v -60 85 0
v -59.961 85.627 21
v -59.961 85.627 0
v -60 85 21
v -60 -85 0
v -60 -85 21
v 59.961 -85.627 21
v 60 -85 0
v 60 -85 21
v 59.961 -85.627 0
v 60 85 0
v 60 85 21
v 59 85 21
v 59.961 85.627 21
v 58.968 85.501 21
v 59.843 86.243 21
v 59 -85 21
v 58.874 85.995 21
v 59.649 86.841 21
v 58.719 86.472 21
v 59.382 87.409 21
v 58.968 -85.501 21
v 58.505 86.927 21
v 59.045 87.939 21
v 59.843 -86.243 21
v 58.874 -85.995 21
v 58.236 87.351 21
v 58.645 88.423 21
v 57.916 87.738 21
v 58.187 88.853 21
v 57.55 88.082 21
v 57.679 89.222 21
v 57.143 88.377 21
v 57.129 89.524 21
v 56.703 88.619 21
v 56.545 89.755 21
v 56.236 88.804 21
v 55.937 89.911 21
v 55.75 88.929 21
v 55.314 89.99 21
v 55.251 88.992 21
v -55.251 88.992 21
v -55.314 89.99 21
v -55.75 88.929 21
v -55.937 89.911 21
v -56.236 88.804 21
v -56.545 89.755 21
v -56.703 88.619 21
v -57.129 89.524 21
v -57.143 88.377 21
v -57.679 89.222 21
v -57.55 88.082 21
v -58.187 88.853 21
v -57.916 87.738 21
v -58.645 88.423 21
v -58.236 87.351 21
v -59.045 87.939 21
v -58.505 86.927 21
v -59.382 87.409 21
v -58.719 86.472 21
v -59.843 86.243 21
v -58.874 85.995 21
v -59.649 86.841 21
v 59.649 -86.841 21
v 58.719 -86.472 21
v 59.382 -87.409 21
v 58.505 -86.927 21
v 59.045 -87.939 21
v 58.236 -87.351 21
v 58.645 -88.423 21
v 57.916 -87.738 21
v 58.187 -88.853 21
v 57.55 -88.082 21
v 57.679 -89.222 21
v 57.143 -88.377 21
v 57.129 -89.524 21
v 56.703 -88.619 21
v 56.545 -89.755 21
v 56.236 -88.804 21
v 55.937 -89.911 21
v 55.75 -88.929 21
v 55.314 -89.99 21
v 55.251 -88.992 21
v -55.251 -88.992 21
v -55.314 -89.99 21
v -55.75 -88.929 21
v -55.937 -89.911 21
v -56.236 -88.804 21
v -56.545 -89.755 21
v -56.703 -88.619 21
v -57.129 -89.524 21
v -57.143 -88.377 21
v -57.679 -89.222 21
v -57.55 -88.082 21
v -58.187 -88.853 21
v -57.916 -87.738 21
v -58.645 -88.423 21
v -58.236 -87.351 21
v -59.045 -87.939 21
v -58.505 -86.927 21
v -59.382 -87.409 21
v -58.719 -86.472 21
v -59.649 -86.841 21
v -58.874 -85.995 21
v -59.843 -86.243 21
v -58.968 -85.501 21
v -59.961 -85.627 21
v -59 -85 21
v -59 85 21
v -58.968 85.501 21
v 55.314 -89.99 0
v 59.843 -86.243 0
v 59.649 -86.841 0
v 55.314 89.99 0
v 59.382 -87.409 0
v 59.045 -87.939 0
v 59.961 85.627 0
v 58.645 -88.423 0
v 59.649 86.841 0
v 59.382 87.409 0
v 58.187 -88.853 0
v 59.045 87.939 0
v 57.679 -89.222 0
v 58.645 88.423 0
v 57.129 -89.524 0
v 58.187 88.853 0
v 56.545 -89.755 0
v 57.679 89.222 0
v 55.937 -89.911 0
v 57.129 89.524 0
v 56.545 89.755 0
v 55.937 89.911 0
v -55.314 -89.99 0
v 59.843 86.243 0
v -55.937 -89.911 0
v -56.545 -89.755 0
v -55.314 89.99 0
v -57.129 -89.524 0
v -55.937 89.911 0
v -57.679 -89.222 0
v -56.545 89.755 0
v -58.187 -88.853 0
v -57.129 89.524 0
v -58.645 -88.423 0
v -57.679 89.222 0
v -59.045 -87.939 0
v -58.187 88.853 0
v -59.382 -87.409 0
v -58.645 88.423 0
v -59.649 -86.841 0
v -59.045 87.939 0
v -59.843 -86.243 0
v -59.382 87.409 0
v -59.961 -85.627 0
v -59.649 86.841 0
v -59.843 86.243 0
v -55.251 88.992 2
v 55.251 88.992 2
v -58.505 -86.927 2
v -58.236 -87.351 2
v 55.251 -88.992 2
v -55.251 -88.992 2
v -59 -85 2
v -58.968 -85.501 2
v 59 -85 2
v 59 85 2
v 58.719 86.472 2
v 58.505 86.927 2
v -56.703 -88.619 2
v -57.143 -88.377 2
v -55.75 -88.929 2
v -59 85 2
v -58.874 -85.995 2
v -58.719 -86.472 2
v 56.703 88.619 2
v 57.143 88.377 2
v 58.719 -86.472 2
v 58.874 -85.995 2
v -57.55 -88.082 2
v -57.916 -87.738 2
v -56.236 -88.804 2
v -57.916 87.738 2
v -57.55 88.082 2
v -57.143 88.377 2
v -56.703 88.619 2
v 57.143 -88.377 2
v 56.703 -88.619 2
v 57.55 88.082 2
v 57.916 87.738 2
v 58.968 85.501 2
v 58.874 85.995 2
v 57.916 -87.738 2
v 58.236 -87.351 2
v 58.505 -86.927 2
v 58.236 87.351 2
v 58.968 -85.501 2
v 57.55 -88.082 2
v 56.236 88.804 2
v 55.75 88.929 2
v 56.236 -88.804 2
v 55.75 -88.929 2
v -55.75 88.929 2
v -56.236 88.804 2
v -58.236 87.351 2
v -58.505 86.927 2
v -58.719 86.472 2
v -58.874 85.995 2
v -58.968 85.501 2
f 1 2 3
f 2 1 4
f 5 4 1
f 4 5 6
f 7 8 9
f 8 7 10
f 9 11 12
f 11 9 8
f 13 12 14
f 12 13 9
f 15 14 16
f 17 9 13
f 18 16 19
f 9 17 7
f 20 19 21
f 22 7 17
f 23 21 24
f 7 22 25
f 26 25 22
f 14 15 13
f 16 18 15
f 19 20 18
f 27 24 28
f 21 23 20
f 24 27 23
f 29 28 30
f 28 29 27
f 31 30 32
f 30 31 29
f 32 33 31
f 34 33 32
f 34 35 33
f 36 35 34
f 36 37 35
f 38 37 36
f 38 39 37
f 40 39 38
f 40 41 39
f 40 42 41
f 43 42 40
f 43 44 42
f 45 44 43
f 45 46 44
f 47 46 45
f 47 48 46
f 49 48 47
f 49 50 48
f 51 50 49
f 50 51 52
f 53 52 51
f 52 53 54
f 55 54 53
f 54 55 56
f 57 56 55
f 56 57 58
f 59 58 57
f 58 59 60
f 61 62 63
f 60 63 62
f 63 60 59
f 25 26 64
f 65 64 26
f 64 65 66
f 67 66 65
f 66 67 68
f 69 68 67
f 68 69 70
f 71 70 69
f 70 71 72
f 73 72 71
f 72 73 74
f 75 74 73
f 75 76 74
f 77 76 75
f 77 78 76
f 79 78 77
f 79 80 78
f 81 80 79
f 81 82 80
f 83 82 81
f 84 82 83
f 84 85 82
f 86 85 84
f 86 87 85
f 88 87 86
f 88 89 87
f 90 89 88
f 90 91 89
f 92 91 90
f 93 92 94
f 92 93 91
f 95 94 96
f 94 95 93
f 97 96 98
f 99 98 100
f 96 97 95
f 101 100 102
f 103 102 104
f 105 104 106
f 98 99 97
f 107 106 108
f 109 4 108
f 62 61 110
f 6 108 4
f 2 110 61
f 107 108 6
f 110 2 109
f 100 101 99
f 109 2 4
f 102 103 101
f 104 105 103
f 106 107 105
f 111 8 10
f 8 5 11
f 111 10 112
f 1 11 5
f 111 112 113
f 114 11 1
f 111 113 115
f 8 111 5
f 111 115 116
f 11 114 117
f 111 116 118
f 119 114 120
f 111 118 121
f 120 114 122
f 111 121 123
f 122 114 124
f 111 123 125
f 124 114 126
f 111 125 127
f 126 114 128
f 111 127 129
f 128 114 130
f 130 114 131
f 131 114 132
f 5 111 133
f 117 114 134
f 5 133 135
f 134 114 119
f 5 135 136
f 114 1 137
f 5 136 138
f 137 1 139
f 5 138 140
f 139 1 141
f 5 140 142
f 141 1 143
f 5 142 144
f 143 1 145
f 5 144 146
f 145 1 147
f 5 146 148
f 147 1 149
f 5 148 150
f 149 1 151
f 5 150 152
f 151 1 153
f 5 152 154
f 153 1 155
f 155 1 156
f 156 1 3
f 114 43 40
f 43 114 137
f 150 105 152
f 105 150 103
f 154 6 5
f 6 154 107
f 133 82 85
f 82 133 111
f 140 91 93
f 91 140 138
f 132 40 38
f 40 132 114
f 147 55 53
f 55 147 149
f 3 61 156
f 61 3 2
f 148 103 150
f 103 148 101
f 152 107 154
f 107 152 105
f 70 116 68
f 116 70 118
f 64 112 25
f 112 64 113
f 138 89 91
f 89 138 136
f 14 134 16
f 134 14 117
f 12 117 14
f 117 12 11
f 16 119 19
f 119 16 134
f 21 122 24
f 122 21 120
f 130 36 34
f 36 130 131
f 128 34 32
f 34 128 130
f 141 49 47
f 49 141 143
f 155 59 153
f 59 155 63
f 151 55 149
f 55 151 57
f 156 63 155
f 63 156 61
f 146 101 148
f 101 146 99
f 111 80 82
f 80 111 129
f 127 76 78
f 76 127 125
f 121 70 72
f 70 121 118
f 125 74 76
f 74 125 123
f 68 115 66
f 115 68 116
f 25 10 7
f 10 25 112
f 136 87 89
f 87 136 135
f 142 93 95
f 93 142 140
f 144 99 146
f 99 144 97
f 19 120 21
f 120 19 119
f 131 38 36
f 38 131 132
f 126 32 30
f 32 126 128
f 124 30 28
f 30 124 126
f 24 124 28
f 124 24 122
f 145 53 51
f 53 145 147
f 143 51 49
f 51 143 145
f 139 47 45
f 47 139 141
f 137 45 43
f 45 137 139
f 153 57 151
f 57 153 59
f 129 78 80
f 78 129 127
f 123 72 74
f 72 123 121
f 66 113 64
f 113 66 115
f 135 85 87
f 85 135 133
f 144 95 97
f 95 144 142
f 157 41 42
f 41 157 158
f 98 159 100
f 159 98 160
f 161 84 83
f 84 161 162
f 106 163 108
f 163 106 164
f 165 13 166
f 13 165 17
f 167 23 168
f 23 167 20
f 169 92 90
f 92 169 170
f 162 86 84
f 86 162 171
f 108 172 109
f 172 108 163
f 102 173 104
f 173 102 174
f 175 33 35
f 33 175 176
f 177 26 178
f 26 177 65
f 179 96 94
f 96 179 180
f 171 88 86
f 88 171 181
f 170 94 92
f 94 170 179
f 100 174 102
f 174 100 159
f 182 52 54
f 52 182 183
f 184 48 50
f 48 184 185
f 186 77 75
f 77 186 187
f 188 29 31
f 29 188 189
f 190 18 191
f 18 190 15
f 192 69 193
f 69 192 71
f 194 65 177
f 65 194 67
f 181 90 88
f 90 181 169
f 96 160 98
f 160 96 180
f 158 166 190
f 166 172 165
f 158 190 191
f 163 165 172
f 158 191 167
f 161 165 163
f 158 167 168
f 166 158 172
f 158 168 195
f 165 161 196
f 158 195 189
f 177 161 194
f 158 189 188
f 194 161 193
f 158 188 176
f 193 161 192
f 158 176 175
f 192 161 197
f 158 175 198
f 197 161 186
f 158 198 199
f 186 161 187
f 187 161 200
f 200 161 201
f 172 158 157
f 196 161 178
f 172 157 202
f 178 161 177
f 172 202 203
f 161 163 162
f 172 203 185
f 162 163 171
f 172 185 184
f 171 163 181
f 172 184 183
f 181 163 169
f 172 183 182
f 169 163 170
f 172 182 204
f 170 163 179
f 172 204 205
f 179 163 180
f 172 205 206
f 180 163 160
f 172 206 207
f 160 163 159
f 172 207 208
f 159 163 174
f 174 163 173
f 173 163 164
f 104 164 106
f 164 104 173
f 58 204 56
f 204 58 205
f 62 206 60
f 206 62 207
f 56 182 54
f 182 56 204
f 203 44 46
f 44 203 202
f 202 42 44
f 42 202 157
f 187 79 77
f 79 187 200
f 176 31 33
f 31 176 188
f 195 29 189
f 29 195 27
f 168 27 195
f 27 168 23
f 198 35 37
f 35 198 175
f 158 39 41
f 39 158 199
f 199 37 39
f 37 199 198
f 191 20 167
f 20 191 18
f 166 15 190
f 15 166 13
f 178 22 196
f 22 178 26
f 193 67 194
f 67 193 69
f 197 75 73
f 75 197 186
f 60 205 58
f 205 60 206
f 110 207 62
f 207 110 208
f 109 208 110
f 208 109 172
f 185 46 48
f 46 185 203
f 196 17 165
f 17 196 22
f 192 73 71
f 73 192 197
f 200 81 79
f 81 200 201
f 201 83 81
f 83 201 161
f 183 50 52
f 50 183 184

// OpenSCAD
$fn = 50;


difference() {
	union() {
		hull() {
			translate(v = [-55.0000000000, 85.0000000000, 0]) {
				cylinder(h = 21, r = 5);
			}
			translate(v = [55.0000000000, 85.0000000000, 0]) {
				cylinder(h = 21, r = 5);
			}
			translate(v = [-55.0000000000, -85.0000000000, 0]) {
				cylinder(h = 21, r = 5);
			}
			translate(v = [55.0000000000, -85.0000000000, 0]) {
				cylinder(h = 21, r = 5);
			}
		}
	}
	union() {
		translate(v = [0, 0, 2]) {
			hull() {
				translate(v = [-55.0000000000, 85.0000000000, 0]) {
					cylinder(h = 19, r = 4);
				}
				translate(v = [55.0000000000, 85.0000000000, 0]) {
					cylinder(h = 19, r = 4);
				}
				translate(v = [-55.0000000000, -85.0000000000, 0]) {
					cylinder(h = 19, r = 4);
				}
				translate(v = [55.0000000000, -85.0000000000, 0]) {
					cylinder(h = 19, r = 4);
				}
			}
		}
	}
}
